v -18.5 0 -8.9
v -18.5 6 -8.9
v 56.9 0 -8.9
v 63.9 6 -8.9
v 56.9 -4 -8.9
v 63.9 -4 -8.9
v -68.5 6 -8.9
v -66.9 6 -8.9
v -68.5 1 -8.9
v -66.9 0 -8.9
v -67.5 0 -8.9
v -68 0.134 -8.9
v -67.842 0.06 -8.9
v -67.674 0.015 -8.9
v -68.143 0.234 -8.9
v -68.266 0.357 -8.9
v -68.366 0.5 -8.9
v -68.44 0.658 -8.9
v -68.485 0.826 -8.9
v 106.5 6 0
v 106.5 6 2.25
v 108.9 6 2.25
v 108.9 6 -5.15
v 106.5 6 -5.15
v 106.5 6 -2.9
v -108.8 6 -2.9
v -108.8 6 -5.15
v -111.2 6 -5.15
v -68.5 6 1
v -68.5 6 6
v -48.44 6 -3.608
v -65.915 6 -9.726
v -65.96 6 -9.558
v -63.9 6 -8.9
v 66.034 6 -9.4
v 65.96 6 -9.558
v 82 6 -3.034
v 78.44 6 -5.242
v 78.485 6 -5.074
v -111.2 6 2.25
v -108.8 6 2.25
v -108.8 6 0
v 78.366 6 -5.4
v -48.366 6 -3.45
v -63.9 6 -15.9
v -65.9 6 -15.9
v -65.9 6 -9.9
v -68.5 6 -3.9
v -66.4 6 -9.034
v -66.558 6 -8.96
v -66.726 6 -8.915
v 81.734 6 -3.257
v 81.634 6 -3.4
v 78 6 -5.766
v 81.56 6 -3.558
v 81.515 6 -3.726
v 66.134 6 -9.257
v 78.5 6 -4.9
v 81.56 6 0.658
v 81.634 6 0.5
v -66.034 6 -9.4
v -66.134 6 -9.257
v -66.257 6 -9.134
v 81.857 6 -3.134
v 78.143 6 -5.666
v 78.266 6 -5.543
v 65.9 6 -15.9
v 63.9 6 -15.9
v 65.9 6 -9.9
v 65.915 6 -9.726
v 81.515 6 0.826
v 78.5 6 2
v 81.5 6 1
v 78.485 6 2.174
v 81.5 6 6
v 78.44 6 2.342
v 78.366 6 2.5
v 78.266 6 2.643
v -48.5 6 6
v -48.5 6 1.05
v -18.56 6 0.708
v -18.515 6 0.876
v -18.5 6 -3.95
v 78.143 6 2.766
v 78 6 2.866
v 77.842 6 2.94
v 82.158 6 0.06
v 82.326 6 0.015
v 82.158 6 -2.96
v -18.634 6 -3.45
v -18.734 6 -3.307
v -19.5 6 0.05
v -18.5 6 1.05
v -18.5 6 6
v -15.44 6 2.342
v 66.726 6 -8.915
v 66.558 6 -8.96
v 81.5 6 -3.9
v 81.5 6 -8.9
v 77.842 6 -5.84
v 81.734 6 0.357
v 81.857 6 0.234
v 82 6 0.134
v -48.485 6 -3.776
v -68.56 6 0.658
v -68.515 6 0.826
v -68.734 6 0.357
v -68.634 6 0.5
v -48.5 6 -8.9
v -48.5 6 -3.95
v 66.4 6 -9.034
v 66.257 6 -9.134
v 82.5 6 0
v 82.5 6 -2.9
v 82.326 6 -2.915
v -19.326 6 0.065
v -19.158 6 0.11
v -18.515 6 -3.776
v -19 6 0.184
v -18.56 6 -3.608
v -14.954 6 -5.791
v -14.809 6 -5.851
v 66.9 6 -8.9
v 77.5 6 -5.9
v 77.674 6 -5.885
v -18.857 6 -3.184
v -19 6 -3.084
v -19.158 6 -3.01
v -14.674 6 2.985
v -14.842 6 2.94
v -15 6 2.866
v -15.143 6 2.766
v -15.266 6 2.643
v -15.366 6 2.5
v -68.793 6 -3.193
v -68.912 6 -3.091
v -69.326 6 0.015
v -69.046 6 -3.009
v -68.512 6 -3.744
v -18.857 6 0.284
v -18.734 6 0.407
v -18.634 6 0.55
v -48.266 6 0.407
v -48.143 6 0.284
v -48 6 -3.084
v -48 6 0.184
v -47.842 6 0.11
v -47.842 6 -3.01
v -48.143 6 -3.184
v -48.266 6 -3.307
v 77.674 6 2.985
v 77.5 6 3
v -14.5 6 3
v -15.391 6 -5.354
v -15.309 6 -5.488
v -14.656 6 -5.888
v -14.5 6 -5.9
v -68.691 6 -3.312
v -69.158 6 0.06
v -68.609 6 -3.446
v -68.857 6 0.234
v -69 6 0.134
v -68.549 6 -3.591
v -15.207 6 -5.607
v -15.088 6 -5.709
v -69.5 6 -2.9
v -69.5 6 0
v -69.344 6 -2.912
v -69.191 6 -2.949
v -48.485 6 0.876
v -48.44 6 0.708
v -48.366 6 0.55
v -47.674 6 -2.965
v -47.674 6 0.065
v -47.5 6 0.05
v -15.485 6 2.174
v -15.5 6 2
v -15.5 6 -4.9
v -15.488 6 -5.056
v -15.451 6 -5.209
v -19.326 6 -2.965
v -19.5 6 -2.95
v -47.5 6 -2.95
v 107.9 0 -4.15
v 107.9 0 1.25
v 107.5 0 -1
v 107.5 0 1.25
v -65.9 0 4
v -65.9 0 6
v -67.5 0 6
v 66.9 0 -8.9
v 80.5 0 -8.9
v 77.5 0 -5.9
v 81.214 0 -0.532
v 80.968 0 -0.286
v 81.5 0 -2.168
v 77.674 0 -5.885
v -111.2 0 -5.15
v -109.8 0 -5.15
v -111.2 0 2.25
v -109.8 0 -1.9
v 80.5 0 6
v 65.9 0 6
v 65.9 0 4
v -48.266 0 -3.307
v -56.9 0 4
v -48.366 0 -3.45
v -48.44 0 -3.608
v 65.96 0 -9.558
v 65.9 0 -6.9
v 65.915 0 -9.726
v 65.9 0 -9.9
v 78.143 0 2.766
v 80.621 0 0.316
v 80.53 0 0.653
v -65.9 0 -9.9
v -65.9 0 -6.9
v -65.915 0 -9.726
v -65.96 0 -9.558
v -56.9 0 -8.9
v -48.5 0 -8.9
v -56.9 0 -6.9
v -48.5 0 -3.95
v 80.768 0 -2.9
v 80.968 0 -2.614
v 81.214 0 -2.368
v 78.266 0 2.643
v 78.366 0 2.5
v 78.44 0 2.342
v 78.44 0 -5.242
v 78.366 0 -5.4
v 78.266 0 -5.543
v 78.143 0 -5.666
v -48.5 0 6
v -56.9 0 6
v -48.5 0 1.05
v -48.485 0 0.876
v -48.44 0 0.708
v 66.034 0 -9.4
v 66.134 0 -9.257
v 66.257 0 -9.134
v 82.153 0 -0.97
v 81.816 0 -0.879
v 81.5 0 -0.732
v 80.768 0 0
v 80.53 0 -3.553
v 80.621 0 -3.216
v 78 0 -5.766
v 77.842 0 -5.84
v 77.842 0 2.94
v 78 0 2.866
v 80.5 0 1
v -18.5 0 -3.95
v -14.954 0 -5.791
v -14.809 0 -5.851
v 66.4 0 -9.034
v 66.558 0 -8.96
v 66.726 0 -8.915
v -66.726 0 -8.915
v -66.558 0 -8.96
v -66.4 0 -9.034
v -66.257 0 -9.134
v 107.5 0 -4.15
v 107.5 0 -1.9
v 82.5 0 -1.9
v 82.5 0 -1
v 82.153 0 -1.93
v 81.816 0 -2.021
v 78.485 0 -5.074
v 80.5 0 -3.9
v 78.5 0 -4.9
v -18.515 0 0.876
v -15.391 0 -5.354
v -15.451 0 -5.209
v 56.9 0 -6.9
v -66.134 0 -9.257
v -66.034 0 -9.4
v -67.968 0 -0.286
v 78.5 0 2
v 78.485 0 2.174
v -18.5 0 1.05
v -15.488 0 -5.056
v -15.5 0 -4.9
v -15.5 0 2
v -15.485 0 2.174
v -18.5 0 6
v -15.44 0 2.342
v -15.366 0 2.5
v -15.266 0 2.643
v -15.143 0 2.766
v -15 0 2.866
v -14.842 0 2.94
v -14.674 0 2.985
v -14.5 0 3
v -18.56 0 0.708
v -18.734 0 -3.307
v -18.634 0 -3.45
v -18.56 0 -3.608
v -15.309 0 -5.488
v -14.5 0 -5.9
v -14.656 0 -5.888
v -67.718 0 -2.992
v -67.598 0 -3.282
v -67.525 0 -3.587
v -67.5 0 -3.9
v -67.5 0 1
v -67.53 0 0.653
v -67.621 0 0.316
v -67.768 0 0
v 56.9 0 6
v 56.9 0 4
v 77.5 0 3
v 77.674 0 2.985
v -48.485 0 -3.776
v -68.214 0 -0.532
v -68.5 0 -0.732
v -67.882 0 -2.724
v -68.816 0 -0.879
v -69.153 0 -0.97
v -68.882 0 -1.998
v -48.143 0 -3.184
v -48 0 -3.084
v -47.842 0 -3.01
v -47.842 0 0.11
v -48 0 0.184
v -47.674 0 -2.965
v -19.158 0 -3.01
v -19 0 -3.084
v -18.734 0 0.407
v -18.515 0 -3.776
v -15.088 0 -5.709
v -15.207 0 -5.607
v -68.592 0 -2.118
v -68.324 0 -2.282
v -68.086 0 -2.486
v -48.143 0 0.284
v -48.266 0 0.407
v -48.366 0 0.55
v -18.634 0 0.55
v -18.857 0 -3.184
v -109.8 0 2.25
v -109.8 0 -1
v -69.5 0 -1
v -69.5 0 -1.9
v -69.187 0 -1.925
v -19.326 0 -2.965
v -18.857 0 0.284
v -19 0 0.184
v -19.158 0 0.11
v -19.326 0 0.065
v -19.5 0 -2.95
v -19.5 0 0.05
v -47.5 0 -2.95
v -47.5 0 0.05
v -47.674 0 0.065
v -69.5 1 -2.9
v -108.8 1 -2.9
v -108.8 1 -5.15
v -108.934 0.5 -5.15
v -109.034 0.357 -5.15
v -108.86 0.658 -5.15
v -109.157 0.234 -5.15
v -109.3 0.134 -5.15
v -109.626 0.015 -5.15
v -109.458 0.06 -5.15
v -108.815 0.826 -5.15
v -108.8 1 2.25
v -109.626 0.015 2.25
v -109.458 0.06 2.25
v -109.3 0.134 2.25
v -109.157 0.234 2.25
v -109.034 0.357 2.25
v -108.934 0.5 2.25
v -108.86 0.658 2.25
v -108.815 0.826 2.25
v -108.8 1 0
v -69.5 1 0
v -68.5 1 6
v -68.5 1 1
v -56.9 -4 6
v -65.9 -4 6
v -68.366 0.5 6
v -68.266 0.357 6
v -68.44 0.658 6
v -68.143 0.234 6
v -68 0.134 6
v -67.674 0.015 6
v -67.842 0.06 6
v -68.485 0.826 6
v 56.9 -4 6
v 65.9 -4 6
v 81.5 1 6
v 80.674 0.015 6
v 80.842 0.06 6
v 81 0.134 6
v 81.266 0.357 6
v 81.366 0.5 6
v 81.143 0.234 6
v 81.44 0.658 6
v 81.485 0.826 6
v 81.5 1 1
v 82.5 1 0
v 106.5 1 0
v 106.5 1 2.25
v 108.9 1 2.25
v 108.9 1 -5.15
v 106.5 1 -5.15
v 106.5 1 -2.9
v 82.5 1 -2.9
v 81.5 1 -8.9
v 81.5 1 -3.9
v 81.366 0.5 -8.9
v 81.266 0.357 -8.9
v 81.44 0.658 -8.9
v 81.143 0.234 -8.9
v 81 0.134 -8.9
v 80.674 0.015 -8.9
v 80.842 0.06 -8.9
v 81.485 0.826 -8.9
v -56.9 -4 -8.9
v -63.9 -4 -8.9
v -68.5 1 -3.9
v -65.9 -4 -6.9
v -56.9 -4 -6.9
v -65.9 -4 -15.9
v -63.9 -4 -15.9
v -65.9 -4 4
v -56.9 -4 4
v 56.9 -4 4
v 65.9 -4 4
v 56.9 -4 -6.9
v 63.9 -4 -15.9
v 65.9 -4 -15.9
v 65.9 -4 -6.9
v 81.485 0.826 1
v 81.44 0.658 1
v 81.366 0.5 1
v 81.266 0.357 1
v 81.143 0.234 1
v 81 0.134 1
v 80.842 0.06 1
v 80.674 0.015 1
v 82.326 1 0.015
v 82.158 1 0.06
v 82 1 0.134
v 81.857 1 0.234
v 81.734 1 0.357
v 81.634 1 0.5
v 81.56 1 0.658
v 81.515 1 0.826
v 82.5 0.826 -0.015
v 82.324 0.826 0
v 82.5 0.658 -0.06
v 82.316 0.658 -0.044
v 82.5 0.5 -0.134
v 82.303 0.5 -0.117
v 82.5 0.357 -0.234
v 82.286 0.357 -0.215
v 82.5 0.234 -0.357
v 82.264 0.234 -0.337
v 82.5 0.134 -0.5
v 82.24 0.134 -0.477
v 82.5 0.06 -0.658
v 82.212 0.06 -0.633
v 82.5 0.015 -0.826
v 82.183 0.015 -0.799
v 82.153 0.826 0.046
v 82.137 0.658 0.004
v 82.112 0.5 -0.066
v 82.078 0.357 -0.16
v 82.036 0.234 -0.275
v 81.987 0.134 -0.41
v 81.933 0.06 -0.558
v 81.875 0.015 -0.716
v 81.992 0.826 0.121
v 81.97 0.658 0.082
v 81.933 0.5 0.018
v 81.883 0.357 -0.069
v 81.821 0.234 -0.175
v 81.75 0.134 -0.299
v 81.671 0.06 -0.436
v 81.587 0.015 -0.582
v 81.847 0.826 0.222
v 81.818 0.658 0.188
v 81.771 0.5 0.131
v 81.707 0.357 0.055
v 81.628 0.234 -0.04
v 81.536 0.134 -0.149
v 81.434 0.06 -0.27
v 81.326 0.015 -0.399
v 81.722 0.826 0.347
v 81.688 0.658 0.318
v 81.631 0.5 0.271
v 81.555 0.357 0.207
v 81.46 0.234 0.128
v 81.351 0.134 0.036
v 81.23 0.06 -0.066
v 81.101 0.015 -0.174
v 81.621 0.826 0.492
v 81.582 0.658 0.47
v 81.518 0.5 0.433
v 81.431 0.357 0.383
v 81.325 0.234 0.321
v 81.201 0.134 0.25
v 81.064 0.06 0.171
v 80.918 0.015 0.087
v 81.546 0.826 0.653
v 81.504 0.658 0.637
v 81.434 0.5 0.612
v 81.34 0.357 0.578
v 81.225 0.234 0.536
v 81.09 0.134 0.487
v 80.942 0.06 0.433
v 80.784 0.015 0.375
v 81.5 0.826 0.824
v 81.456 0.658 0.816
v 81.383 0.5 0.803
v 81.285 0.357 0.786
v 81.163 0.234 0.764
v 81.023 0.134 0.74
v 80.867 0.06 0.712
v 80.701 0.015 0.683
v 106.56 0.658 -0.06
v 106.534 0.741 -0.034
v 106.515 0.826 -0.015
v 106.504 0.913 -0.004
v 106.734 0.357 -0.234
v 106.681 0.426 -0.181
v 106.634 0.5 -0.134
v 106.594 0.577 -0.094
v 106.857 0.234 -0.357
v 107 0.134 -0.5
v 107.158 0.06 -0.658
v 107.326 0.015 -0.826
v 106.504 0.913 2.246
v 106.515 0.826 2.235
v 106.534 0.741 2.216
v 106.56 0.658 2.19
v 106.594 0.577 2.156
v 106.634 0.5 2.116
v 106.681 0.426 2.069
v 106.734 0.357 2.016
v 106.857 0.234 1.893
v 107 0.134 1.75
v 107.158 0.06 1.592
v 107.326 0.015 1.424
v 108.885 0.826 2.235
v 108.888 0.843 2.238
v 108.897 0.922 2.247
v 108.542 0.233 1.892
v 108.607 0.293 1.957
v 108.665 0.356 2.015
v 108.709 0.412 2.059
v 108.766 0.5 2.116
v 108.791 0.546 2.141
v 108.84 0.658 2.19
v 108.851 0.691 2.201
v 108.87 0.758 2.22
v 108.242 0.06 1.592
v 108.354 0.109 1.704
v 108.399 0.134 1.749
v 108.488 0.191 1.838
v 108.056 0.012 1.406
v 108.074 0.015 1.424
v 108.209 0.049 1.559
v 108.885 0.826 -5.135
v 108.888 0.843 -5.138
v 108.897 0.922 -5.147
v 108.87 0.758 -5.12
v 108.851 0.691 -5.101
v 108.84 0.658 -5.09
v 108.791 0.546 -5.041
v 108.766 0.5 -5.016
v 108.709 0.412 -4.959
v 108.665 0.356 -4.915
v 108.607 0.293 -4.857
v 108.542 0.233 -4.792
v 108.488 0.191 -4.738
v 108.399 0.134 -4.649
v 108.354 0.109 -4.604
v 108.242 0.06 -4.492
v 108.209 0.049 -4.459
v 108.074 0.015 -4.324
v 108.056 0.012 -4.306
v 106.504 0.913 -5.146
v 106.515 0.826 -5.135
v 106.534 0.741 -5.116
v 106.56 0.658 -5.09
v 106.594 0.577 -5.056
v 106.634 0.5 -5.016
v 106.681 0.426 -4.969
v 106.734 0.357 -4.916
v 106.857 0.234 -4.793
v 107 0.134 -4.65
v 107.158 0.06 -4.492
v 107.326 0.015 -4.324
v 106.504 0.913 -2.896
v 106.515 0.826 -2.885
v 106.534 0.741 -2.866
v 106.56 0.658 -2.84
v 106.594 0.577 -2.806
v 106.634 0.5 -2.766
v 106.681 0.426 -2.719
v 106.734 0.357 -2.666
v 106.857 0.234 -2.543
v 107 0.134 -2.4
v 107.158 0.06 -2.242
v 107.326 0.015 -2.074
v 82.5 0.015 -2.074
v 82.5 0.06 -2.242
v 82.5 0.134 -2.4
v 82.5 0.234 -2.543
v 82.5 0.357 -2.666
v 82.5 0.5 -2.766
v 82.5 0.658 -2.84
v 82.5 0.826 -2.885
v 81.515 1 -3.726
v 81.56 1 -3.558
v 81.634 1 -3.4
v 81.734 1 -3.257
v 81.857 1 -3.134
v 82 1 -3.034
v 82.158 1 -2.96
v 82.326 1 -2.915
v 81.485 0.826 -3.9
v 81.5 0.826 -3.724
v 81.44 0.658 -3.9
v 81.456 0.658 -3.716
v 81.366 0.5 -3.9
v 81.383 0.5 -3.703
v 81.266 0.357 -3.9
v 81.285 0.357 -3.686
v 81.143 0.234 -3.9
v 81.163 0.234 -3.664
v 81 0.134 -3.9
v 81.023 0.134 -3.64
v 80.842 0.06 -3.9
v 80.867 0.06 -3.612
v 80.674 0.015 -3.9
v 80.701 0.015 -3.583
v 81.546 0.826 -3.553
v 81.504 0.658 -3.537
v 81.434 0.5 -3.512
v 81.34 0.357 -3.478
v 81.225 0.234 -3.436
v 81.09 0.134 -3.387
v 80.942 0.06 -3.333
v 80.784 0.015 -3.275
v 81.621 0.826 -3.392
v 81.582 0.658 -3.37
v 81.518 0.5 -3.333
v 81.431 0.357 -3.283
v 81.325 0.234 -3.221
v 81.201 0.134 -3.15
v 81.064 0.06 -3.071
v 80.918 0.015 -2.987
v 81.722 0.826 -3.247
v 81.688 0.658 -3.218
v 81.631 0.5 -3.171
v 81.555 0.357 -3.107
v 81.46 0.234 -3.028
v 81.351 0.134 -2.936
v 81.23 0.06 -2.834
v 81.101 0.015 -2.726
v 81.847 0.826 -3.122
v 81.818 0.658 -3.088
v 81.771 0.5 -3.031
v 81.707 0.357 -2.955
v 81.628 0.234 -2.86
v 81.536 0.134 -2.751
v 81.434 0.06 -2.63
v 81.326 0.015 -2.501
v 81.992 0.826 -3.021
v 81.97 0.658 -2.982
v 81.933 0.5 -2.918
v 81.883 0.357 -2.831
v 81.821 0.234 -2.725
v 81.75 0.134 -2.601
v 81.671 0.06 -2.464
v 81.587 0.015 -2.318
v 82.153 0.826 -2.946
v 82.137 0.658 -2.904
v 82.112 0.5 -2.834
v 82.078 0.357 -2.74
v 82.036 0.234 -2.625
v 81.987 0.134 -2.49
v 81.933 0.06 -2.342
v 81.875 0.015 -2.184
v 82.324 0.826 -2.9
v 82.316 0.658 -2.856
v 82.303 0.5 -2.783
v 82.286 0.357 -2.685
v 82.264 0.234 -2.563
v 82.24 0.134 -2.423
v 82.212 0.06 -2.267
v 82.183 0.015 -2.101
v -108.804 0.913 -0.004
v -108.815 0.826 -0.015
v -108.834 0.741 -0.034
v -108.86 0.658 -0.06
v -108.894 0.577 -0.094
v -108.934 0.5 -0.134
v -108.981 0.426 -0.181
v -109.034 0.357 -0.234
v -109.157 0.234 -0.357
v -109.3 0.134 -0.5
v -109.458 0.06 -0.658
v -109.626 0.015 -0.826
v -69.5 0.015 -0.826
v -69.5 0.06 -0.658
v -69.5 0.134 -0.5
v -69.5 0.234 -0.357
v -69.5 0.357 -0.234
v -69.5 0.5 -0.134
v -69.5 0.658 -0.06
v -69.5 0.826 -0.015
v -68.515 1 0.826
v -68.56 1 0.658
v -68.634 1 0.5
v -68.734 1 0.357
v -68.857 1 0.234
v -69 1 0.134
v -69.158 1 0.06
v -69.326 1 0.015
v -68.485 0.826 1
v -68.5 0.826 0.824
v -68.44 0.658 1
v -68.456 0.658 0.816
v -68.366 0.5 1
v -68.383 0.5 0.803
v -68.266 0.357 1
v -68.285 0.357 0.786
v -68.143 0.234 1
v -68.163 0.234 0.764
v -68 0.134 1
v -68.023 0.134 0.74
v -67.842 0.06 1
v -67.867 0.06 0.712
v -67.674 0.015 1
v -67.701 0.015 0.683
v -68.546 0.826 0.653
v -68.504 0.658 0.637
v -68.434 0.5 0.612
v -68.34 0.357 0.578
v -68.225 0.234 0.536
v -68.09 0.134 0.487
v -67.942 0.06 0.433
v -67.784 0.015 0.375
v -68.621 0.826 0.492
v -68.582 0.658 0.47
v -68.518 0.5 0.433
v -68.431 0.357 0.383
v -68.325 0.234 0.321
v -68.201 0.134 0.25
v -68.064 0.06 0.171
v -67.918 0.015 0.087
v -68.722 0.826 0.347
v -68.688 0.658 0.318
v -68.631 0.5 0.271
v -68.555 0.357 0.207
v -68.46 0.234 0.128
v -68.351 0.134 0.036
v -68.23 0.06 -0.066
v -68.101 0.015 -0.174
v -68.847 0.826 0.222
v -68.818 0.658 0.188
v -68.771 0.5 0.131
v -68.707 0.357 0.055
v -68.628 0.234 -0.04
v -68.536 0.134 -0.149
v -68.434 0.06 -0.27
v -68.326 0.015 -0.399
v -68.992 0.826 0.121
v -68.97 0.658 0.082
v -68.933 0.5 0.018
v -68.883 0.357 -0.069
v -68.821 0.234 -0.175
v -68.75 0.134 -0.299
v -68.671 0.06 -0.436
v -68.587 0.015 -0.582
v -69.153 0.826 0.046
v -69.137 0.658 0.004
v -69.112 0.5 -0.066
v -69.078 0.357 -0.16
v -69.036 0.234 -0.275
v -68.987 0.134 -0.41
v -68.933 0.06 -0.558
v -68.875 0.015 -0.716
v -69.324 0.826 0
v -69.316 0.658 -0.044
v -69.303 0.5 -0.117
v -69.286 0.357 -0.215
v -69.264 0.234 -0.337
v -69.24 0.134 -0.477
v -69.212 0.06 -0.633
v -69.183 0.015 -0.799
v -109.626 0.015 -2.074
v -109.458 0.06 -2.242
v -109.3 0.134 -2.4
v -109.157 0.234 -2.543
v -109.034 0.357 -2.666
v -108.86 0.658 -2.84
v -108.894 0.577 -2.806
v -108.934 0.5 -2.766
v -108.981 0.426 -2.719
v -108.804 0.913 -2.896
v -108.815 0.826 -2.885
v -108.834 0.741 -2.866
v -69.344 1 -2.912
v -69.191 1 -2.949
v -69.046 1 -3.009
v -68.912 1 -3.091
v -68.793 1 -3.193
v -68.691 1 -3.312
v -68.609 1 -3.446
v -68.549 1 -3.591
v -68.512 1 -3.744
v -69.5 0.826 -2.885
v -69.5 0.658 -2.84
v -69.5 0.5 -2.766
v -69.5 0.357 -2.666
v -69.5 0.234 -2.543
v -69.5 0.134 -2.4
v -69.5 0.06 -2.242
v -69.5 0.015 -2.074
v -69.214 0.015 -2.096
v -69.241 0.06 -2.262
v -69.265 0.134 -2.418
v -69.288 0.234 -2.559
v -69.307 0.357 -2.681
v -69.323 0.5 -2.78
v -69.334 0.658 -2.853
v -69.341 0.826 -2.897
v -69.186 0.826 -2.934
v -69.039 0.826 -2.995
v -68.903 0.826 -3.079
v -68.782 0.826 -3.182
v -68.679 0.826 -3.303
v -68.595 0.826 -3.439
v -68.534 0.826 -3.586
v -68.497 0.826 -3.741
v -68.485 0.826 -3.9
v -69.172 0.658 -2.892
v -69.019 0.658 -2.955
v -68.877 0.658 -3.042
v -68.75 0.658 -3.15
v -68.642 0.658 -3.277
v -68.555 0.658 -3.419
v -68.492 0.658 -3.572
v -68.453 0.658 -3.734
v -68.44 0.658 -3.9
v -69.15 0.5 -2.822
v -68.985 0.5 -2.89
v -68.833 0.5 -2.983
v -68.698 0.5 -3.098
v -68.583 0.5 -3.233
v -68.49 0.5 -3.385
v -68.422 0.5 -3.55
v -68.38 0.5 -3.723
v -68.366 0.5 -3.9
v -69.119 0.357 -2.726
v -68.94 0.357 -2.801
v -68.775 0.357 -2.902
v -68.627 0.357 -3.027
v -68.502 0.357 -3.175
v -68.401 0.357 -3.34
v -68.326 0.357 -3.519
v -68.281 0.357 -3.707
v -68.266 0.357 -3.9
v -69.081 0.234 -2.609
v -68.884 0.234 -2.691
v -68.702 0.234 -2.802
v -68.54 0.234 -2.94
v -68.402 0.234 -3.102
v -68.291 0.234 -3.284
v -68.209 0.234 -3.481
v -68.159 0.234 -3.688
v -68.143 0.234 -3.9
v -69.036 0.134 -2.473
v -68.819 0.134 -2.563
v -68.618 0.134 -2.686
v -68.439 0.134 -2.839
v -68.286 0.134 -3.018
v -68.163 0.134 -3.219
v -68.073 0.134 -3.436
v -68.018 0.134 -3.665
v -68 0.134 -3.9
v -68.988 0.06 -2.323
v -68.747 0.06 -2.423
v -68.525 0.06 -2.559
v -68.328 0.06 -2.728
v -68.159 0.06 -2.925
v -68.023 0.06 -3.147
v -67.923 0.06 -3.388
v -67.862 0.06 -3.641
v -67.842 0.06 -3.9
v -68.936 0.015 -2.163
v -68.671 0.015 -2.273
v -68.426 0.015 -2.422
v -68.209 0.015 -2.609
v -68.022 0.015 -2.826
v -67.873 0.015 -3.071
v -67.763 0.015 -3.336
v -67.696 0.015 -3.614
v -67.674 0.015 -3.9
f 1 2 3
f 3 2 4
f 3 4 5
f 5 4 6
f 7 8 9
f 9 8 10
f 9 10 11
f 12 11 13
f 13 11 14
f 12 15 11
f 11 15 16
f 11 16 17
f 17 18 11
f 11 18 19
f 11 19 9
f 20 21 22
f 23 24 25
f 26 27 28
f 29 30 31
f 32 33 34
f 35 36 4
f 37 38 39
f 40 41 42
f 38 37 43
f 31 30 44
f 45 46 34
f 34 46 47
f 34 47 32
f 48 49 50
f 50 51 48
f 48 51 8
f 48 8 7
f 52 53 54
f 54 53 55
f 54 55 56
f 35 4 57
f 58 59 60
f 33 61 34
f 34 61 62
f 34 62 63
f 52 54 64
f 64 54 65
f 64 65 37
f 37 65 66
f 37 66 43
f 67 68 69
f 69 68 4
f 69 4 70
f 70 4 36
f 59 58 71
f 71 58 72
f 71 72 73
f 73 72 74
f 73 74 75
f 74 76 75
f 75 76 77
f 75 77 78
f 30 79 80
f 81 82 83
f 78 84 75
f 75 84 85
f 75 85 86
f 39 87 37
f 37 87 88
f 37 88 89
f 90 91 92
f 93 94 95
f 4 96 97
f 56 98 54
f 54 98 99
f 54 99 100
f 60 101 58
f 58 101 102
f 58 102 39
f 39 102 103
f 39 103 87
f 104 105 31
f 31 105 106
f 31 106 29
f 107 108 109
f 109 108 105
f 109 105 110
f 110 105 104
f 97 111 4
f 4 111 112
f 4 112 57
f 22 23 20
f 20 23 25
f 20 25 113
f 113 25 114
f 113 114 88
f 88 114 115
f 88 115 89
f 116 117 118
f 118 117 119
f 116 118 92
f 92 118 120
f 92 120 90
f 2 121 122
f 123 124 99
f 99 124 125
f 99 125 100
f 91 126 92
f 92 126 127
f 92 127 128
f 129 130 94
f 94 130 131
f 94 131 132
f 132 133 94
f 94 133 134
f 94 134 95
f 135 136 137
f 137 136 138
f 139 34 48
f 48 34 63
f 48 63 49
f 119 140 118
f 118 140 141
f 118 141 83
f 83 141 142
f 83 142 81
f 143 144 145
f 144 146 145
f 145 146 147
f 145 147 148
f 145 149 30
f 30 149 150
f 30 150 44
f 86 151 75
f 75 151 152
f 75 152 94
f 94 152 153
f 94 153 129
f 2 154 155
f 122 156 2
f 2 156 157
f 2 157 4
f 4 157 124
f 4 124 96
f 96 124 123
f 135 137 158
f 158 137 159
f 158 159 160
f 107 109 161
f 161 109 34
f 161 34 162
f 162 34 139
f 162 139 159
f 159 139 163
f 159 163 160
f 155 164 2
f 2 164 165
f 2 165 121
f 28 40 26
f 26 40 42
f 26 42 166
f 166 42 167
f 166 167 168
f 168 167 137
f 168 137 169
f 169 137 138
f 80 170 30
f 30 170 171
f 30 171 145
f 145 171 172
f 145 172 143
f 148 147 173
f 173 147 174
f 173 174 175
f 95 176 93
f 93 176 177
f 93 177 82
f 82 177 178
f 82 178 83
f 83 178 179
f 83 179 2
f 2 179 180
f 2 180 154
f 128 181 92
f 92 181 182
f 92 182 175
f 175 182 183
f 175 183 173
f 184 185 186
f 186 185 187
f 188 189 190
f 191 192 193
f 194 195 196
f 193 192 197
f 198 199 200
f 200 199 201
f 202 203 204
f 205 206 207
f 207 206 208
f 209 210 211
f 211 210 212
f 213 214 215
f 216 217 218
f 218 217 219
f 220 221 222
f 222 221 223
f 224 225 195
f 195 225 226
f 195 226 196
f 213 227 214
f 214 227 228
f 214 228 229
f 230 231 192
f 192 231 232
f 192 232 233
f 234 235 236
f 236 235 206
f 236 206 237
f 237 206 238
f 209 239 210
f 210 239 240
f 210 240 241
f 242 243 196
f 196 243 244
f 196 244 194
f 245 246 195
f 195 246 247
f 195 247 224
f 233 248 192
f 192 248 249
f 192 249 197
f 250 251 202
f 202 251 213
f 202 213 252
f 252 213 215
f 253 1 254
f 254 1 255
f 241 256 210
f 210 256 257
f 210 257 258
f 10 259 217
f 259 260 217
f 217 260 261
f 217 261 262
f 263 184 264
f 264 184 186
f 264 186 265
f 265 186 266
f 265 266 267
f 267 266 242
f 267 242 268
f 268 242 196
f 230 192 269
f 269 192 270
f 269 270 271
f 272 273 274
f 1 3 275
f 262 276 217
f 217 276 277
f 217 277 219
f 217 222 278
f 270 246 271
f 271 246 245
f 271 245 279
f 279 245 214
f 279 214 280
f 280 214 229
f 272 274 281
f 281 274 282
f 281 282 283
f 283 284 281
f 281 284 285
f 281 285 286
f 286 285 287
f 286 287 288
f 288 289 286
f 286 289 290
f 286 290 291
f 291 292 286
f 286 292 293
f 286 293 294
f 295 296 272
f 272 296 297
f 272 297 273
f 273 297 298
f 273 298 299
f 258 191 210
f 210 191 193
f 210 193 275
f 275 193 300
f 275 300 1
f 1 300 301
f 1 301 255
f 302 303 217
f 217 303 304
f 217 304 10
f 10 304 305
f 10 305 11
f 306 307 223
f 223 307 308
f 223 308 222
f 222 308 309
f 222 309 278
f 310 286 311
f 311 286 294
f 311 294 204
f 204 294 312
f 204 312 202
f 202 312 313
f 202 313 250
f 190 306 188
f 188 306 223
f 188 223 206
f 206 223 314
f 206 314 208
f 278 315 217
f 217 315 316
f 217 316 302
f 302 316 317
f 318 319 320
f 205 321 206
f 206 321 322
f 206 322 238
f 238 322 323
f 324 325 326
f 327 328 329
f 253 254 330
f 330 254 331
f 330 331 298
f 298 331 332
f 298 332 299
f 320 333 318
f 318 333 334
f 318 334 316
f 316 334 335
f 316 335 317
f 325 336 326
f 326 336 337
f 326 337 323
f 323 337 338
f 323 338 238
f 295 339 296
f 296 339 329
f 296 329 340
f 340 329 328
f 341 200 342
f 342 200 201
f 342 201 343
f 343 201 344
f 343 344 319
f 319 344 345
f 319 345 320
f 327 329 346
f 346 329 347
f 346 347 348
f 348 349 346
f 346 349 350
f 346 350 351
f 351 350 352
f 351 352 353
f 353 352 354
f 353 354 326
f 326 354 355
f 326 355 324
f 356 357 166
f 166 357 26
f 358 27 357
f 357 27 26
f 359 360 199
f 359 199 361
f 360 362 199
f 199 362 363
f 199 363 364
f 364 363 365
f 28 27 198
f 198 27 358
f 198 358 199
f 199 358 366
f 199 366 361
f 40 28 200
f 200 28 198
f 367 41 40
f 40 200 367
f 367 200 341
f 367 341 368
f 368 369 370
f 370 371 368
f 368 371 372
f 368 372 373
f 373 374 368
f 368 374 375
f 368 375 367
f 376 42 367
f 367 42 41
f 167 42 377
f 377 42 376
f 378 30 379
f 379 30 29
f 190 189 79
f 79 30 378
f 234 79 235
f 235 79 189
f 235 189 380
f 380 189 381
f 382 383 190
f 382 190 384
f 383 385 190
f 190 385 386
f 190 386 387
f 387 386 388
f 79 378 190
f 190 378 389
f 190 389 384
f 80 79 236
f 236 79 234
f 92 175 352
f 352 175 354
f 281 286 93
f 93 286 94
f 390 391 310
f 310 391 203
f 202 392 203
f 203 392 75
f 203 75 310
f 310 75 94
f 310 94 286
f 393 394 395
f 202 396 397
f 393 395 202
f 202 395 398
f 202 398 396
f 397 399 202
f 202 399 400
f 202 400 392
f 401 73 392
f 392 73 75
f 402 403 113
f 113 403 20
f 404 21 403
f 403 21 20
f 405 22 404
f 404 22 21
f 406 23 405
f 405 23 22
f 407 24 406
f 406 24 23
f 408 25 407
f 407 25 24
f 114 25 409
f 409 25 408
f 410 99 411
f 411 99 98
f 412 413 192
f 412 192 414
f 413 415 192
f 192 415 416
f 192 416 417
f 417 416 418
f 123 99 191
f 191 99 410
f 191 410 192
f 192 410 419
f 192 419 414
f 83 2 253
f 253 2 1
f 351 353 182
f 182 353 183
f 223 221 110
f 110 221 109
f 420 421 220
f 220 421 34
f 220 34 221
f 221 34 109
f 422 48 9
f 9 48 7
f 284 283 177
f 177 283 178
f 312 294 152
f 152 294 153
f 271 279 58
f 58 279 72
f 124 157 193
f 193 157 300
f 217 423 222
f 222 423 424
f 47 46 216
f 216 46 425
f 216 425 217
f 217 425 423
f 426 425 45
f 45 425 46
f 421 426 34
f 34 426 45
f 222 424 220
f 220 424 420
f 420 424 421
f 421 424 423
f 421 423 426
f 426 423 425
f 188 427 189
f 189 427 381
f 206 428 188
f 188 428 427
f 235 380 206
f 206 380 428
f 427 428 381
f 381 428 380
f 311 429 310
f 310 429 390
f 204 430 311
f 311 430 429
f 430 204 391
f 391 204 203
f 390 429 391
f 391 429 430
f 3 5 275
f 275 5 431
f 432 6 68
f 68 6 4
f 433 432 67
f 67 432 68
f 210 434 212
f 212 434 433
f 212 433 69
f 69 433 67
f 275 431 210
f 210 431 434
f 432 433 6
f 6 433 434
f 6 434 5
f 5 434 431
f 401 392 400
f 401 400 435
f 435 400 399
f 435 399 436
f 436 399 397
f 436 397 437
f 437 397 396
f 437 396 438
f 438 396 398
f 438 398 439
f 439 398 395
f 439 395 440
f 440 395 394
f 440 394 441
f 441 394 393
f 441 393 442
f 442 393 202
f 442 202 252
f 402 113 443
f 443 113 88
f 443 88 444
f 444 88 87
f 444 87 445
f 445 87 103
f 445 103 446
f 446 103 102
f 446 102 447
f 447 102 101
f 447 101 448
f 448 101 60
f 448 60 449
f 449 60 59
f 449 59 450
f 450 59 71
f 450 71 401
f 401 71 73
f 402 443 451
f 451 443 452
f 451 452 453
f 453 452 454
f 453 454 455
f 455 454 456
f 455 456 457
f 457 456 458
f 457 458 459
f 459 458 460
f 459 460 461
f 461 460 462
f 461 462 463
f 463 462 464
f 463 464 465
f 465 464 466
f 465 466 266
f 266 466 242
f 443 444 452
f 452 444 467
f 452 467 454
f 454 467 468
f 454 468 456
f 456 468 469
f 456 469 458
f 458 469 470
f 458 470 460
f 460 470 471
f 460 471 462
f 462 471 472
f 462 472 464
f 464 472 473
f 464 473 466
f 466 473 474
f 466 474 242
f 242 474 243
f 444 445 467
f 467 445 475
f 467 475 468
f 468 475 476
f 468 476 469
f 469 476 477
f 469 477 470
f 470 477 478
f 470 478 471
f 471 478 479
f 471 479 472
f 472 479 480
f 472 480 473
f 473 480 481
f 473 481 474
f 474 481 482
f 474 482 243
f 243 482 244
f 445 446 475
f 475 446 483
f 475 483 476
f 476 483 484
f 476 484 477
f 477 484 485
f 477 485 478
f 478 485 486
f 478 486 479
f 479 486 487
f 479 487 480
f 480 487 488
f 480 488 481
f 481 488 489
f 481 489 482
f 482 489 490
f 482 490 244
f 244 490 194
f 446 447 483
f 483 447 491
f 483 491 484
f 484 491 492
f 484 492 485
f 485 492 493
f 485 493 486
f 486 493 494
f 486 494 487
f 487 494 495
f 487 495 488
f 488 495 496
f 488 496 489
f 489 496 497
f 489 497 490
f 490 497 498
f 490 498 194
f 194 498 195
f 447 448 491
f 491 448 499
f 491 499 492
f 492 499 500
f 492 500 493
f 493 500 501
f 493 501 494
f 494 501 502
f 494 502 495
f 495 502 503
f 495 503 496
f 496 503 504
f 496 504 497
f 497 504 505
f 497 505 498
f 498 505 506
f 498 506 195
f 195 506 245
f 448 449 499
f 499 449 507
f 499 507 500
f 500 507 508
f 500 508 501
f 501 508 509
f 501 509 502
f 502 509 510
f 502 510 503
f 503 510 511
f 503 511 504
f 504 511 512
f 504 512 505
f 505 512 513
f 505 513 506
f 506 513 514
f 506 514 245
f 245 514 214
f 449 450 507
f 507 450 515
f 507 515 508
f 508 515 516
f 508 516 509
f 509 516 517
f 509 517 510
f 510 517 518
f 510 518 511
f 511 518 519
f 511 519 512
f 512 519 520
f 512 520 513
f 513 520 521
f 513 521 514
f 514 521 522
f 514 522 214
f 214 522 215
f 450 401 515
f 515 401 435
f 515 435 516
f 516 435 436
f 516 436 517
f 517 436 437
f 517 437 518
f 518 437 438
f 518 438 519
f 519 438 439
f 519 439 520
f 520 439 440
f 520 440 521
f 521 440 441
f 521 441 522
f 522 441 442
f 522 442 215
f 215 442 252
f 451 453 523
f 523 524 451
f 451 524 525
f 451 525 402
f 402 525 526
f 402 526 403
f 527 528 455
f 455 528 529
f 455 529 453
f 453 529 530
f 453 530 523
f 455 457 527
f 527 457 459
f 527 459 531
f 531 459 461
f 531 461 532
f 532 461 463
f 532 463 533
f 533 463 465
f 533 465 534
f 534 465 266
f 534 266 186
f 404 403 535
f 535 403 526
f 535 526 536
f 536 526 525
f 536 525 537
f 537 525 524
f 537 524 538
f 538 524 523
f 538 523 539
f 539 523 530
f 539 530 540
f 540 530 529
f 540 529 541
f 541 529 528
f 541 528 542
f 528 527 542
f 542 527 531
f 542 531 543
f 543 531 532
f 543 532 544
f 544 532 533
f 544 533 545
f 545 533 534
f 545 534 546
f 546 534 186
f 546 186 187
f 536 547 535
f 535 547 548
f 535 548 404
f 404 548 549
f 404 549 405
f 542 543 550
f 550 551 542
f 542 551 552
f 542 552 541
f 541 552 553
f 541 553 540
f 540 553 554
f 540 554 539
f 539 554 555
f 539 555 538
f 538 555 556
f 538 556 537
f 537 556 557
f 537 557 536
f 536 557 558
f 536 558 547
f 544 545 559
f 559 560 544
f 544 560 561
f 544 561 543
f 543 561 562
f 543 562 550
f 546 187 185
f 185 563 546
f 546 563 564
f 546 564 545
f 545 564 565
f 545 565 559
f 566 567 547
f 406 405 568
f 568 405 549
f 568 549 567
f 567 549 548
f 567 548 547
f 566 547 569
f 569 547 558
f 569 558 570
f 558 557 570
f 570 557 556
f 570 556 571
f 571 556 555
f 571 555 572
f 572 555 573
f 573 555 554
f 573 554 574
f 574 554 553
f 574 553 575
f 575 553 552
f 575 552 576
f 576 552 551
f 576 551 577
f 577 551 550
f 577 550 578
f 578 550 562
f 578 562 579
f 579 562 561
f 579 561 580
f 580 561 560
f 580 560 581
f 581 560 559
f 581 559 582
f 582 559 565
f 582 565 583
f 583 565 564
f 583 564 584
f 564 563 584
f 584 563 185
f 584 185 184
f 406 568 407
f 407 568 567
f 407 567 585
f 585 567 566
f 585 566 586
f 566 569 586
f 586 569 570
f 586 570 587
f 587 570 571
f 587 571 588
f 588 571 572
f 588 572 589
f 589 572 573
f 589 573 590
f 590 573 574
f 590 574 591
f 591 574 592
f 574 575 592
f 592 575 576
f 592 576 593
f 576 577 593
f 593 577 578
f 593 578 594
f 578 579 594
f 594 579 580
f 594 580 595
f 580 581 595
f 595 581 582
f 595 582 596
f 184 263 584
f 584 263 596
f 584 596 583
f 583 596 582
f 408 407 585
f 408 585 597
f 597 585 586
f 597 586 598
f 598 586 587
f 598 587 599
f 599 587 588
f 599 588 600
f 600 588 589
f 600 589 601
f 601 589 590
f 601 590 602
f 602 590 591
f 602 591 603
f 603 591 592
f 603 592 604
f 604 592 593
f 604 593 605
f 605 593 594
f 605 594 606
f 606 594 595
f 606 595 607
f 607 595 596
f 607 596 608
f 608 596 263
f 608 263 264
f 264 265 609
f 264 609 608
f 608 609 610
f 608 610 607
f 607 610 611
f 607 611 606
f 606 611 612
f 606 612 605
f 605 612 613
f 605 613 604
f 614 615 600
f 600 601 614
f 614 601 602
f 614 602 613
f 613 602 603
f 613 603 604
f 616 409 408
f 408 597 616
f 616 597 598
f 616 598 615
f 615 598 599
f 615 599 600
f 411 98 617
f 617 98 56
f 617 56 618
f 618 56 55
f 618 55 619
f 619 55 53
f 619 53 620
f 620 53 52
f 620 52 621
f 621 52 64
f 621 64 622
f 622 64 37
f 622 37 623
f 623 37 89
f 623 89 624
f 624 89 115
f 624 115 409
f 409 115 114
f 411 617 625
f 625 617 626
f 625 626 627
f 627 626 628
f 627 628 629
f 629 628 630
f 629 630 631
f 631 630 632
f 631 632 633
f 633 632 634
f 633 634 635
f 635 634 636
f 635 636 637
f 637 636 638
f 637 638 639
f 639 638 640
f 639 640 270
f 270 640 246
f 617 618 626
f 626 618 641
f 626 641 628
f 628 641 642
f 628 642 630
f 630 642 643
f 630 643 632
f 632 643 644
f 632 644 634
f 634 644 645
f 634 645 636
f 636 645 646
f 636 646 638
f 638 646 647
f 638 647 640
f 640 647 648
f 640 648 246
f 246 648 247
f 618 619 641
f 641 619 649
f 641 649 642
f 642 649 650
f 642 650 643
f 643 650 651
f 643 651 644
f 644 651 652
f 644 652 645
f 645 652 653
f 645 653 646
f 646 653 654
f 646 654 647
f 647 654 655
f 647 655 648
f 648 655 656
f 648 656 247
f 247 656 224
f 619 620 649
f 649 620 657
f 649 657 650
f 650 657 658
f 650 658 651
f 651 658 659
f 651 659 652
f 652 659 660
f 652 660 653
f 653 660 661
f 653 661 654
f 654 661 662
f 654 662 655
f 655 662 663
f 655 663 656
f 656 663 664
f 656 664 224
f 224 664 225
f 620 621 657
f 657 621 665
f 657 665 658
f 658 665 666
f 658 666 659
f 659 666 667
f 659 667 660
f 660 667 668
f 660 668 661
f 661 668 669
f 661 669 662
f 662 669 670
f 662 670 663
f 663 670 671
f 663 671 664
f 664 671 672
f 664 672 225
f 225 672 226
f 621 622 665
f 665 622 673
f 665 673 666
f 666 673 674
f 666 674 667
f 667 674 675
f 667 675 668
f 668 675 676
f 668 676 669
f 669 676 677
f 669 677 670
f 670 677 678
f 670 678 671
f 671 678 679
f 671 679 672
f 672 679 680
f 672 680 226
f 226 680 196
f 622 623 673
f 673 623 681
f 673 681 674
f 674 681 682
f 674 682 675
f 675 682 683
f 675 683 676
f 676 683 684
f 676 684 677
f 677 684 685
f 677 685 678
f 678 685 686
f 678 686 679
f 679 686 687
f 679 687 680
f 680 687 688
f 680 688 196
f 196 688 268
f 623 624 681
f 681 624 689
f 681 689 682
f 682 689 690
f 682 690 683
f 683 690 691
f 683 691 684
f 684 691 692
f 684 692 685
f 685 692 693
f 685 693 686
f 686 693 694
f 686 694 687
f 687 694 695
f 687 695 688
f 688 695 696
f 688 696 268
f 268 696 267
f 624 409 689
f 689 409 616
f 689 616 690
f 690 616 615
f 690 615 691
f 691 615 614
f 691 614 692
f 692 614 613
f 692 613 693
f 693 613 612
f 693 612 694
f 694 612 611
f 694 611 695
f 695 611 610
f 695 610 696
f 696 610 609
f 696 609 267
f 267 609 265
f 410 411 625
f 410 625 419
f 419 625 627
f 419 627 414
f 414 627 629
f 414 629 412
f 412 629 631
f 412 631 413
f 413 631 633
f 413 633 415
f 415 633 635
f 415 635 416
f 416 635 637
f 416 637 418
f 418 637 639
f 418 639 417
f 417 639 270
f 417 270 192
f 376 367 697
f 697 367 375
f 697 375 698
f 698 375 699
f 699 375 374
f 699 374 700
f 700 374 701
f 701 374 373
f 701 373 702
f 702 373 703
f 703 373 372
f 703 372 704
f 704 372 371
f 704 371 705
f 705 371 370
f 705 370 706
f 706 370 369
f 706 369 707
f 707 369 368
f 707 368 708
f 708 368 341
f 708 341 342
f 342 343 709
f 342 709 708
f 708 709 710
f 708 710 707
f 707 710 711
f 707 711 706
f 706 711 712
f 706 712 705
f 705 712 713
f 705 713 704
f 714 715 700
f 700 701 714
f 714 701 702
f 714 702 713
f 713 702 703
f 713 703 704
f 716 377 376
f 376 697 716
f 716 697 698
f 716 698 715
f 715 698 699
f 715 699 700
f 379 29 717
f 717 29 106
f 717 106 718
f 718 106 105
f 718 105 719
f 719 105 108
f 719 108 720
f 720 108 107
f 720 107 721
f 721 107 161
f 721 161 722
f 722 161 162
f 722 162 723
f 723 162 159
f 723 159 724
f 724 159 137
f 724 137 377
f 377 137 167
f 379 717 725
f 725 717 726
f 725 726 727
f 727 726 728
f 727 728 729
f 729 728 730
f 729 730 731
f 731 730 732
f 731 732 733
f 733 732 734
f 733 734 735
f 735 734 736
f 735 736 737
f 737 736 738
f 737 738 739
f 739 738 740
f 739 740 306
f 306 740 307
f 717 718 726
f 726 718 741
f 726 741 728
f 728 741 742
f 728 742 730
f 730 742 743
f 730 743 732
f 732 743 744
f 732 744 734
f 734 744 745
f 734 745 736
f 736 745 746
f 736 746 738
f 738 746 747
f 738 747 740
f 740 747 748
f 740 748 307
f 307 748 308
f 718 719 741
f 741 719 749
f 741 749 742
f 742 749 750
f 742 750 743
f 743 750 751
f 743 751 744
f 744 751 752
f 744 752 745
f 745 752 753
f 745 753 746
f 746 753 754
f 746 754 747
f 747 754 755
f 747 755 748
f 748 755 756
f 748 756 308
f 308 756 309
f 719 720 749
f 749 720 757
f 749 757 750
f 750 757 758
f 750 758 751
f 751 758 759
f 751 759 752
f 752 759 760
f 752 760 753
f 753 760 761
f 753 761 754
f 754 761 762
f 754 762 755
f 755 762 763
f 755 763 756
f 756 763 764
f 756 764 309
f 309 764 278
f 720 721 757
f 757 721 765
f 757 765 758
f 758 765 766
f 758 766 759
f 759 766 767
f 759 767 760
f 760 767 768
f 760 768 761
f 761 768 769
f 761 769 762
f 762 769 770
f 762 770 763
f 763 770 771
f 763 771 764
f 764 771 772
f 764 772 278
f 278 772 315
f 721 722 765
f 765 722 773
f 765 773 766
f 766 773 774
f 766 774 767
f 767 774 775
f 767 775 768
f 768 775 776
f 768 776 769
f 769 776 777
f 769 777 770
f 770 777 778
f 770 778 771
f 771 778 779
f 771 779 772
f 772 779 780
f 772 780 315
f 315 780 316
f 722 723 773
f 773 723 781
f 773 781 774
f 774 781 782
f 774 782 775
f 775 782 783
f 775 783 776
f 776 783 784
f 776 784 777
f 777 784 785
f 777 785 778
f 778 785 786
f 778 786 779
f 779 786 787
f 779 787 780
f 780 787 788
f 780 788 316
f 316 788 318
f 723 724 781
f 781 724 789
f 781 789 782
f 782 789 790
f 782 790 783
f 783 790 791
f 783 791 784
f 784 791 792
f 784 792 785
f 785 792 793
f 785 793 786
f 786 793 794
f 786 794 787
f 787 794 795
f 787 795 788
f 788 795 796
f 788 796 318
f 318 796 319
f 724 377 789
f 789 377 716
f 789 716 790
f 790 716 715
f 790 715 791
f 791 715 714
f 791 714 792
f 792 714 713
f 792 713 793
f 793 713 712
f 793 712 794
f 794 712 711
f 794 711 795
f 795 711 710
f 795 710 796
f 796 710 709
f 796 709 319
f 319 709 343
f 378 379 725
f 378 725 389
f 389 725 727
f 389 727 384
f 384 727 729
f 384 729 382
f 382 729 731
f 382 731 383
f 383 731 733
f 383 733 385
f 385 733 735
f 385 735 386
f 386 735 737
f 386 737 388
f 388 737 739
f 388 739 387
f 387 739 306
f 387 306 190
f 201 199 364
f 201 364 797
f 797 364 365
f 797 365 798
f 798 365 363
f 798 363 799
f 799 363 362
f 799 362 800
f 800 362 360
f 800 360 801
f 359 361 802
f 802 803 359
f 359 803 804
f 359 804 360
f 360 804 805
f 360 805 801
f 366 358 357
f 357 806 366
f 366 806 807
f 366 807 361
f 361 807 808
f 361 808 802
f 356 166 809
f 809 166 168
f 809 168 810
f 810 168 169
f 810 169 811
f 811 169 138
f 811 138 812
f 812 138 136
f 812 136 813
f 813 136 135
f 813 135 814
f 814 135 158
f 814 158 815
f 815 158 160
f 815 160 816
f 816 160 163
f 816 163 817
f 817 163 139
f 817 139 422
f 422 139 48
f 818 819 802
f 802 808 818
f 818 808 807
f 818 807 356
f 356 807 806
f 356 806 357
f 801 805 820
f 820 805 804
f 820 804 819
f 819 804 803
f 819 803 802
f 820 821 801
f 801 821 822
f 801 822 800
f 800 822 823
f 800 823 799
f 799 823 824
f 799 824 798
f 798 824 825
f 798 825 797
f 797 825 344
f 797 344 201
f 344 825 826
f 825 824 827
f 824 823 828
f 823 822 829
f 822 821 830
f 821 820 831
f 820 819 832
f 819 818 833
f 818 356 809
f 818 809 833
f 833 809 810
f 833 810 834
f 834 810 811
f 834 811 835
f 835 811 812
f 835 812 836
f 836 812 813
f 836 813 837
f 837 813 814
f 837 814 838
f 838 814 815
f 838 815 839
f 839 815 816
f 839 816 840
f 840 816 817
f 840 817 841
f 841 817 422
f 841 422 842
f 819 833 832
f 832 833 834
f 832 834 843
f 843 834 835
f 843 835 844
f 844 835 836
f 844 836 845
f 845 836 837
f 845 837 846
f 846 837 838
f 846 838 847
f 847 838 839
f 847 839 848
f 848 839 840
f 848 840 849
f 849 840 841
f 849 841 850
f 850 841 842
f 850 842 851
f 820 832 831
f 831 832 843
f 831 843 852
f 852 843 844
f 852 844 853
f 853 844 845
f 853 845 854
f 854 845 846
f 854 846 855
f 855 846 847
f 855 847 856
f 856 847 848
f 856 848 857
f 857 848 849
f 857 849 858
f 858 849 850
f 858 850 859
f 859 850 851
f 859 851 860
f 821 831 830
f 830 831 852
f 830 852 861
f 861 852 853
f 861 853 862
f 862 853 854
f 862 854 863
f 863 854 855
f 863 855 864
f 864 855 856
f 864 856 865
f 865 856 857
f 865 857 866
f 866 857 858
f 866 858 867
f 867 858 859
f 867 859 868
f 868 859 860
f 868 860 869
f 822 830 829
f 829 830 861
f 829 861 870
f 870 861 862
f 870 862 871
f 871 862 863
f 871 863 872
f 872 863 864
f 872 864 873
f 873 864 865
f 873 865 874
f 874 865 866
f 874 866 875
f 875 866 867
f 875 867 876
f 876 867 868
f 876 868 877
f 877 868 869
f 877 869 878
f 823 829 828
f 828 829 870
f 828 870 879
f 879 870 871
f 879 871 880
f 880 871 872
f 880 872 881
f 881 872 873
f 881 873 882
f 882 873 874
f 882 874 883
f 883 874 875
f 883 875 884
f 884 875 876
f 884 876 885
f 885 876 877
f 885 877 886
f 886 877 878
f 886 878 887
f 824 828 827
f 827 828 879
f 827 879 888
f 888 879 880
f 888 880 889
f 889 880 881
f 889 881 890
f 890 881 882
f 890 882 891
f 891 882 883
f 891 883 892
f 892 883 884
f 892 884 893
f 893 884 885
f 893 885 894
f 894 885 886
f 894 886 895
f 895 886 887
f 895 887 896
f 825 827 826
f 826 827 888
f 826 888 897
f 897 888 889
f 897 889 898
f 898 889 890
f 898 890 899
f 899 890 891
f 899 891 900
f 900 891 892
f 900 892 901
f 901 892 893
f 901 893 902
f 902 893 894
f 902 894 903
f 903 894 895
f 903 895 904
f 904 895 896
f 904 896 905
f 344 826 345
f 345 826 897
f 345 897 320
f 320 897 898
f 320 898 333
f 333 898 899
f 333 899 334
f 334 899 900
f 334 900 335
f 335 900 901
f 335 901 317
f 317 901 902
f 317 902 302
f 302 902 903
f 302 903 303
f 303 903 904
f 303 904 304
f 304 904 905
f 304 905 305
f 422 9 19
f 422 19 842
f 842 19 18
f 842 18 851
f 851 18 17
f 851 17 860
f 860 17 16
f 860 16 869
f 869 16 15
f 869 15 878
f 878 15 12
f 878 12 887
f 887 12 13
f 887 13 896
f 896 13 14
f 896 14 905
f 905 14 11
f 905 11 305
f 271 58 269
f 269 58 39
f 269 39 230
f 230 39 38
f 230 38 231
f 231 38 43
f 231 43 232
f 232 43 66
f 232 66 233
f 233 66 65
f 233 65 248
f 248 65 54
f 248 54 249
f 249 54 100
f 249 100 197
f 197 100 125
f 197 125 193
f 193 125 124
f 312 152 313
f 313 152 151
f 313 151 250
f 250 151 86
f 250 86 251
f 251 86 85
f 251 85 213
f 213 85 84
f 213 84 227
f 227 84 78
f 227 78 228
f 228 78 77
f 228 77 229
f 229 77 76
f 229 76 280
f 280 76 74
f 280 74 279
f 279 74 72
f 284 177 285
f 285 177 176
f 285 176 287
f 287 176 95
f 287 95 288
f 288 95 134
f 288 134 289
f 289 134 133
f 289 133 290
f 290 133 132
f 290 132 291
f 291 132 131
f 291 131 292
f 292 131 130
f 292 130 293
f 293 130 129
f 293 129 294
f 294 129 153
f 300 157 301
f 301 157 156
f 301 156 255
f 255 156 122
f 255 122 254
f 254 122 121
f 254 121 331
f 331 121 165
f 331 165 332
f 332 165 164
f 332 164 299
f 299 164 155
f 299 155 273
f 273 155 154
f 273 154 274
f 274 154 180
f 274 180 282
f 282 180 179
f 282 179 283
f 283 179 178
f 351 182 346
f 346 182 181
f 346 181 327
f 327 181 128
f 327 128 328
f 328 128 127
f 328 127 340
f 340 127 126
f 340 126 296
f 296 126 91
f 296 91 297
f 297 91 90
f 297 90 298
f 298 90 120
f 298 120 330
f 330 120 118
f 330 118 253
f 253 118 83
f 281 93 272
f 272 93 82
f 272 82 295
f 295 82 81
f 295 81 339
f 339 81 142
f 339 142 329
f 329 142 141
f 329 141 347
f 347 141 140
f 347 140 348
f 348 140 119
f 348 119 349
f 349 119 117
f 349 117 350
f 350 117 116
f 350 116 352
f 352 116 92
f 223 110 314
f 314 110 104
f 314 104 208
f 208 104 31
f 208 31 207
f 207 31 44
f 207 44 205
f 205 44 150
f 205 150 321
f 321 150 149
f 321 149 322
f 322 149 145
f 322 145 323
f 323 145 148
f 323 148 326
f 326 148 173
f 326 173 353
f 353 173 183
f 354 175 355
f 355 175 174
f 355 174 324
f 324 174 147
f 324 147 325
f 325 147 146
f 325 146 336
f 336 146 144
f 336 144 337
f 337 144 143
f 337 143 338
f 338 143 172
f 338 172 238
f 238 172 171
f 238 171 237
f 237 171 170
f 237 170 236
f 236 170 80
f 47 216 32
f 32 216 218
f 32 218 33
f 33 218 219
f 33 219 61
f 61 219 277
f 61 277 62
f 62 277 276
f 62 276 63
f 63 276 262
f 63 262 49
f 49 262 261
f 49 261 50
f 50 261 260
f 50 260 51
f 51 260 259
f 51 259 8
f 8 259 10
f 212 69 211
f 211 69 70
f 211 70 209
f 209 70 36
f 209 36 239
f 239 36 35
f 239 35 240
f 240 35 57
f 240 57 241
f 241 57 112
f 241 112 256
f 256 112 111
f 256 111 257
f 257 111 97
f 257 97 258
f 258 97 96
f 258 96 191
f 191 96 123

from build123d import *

# Parameters (mm, degrees)
SKETCH1_W               = 94
SKETCH1_H               = 8.9
BOSS_EXTRUDE1_DEPTH     = 6
BOSS_EXTRUDE2_DEPTH     = 10
FILLET1_R               = 1
CUT_EXTRUDE1_DEPTH      = 113.775218909
CUT_EXTRUDE1_DEPTH_BACK = 113.775218909
SKETCH3_W               = 150
SKETCH3_H               = 7


with BuildPart() as part:
    # Sketch1 → Boss-Extrude1 (new body)
    with BuildSketch(Plane(origin=(0, 0, 0), x_dir=(1, 0, 0), z_dir=(0, 1, 0))):
        Polygon((106.5, 2.9), (106.5, 5.15), (108.9, 5.15), (108.9, -2.25), (106.5, -2.25), (106.5, 0), (81.5, 0), (81.5, -6), (-18.5, -6), (-18.5, -0.05), (-48.5, -0.05), (-48.5, -6), (-68.5, -6), (-68.5, 0), (-108.8, 0), (-108.8, -2.25), (-111.2, -2.25), (-111.2, 5.15), (-108.8, 5.15), (-108.8, 2.9), (-68.5, 2.9), (-68.5, 8.9), (-48.5, 8.9), (-48.5, 2.95), (-18.5, 2.95), (-18.5, 8.9), (81.5, 8.9), (81.5, 2.9), align=None)
        with Locations((31.5, 1.45)):
            Rectangle(SKETCH1_W, SKETCH1_H, mode=Mode.SUBTRACT)
    extrude(amount=BOSS_EXTRUDE1_DEPTH)

    # Sketch2 → Boss-Extrude2 (add)
    with BuildSketch(Plane(origin=(0, 6, 0), x_dir=(1, 0, 0), z_dir=(0, 1, 0))):
        Polygon((-65.9, 6.9), (-65.9, 15.9), (-63.9, 15.9), (-63.9, 8.9), (-56.9, 8.9), (-56.9, 6.9), align=None)
        Polygon((-65.9, -4), (-56.9, -4), (-56.9, -6), (-63.9, -6), (-63.9, -13), (-65.9, -13), align=None)
        Polygon((65.9, -13), (65.9, -4), (56.9, -4), (56.9, -6), (63.9, -6), (63.9, -13), align=None)
        Polygon((56.9, 6.9), (65.9, 6.9), (65.9, 15.9), (63.9, 15.9), (63.9, 8.9), (56.9, 8.9), align=None)
    extrude(amount=-BOSS_EXTRUDE2_DEPTH)

    # Fillet1
    fillet1_edges = [part.edges().sort_by_distance(p)[0] for p in [
        (-68.5, 0, 3),
        (-68.5, 0, -5.9),
        (-108.8, 0, -4.025),
        (-108.8, 0, 1.125),
        (-68.5, 3, 0),
        (-68.5, 3, -2.9),
        (-88.65, 0, 0),
        (-88.65, 0, -2.9),
        (81.5, 0, -5.9),
        (81.5, 0, 3),
        (78.5, 3, -5.9),
        (78.5, 3, 3),
        (-15.5, 3, 3),
        (-15.5, 3, -5.9),
        (-18.5, 3, -2.95),
        (-18.5, 3, 0.05),
        (-48.5, 3, -2.95),
        (-48.5, 3, 0.05),
        (-65.9, 3, 6),
        (-65.9, 3, -8.9),
        (65.9, 3, -8.9),
        (65.9, 3, 6),
        (81.5, 3, -2.9),
        (81.5, 3, 0),
        (106.5, 0, 1.125),
        (107.7, 0, 2.25),
        (108.9, 0, -1.45),
        (107.7, 0, -5.15),
        (106.5, 0, -4.025),
        (94, 0, -2.9),
        (94, 0, 0),
    ]]
    fillet(fillet1_edges, radius=FILLET1_R)

    # Sketch3 → Cut-Extrude1 (cut, two sides: drawn at the far end of the back side and taken through both)
    with BuildSketch(Plane(origin=(0, 6, 0), x_dir=(1, 0, 0), z_dir=(0, 1, 0)).offset(-CUT_EXTRUDE1_DEPTH_BACK)):
        with Locations((6.5, -9.5)):
            Rectangle(SKETCH3_W, SKETCH3_H)
    extrude(amount=CUT_EXTRUDE1_DEPTH + CUT_EXTRUDE1_DEPTH_BACK, mode=Mode.SUBTRACT)


solid = part.part
